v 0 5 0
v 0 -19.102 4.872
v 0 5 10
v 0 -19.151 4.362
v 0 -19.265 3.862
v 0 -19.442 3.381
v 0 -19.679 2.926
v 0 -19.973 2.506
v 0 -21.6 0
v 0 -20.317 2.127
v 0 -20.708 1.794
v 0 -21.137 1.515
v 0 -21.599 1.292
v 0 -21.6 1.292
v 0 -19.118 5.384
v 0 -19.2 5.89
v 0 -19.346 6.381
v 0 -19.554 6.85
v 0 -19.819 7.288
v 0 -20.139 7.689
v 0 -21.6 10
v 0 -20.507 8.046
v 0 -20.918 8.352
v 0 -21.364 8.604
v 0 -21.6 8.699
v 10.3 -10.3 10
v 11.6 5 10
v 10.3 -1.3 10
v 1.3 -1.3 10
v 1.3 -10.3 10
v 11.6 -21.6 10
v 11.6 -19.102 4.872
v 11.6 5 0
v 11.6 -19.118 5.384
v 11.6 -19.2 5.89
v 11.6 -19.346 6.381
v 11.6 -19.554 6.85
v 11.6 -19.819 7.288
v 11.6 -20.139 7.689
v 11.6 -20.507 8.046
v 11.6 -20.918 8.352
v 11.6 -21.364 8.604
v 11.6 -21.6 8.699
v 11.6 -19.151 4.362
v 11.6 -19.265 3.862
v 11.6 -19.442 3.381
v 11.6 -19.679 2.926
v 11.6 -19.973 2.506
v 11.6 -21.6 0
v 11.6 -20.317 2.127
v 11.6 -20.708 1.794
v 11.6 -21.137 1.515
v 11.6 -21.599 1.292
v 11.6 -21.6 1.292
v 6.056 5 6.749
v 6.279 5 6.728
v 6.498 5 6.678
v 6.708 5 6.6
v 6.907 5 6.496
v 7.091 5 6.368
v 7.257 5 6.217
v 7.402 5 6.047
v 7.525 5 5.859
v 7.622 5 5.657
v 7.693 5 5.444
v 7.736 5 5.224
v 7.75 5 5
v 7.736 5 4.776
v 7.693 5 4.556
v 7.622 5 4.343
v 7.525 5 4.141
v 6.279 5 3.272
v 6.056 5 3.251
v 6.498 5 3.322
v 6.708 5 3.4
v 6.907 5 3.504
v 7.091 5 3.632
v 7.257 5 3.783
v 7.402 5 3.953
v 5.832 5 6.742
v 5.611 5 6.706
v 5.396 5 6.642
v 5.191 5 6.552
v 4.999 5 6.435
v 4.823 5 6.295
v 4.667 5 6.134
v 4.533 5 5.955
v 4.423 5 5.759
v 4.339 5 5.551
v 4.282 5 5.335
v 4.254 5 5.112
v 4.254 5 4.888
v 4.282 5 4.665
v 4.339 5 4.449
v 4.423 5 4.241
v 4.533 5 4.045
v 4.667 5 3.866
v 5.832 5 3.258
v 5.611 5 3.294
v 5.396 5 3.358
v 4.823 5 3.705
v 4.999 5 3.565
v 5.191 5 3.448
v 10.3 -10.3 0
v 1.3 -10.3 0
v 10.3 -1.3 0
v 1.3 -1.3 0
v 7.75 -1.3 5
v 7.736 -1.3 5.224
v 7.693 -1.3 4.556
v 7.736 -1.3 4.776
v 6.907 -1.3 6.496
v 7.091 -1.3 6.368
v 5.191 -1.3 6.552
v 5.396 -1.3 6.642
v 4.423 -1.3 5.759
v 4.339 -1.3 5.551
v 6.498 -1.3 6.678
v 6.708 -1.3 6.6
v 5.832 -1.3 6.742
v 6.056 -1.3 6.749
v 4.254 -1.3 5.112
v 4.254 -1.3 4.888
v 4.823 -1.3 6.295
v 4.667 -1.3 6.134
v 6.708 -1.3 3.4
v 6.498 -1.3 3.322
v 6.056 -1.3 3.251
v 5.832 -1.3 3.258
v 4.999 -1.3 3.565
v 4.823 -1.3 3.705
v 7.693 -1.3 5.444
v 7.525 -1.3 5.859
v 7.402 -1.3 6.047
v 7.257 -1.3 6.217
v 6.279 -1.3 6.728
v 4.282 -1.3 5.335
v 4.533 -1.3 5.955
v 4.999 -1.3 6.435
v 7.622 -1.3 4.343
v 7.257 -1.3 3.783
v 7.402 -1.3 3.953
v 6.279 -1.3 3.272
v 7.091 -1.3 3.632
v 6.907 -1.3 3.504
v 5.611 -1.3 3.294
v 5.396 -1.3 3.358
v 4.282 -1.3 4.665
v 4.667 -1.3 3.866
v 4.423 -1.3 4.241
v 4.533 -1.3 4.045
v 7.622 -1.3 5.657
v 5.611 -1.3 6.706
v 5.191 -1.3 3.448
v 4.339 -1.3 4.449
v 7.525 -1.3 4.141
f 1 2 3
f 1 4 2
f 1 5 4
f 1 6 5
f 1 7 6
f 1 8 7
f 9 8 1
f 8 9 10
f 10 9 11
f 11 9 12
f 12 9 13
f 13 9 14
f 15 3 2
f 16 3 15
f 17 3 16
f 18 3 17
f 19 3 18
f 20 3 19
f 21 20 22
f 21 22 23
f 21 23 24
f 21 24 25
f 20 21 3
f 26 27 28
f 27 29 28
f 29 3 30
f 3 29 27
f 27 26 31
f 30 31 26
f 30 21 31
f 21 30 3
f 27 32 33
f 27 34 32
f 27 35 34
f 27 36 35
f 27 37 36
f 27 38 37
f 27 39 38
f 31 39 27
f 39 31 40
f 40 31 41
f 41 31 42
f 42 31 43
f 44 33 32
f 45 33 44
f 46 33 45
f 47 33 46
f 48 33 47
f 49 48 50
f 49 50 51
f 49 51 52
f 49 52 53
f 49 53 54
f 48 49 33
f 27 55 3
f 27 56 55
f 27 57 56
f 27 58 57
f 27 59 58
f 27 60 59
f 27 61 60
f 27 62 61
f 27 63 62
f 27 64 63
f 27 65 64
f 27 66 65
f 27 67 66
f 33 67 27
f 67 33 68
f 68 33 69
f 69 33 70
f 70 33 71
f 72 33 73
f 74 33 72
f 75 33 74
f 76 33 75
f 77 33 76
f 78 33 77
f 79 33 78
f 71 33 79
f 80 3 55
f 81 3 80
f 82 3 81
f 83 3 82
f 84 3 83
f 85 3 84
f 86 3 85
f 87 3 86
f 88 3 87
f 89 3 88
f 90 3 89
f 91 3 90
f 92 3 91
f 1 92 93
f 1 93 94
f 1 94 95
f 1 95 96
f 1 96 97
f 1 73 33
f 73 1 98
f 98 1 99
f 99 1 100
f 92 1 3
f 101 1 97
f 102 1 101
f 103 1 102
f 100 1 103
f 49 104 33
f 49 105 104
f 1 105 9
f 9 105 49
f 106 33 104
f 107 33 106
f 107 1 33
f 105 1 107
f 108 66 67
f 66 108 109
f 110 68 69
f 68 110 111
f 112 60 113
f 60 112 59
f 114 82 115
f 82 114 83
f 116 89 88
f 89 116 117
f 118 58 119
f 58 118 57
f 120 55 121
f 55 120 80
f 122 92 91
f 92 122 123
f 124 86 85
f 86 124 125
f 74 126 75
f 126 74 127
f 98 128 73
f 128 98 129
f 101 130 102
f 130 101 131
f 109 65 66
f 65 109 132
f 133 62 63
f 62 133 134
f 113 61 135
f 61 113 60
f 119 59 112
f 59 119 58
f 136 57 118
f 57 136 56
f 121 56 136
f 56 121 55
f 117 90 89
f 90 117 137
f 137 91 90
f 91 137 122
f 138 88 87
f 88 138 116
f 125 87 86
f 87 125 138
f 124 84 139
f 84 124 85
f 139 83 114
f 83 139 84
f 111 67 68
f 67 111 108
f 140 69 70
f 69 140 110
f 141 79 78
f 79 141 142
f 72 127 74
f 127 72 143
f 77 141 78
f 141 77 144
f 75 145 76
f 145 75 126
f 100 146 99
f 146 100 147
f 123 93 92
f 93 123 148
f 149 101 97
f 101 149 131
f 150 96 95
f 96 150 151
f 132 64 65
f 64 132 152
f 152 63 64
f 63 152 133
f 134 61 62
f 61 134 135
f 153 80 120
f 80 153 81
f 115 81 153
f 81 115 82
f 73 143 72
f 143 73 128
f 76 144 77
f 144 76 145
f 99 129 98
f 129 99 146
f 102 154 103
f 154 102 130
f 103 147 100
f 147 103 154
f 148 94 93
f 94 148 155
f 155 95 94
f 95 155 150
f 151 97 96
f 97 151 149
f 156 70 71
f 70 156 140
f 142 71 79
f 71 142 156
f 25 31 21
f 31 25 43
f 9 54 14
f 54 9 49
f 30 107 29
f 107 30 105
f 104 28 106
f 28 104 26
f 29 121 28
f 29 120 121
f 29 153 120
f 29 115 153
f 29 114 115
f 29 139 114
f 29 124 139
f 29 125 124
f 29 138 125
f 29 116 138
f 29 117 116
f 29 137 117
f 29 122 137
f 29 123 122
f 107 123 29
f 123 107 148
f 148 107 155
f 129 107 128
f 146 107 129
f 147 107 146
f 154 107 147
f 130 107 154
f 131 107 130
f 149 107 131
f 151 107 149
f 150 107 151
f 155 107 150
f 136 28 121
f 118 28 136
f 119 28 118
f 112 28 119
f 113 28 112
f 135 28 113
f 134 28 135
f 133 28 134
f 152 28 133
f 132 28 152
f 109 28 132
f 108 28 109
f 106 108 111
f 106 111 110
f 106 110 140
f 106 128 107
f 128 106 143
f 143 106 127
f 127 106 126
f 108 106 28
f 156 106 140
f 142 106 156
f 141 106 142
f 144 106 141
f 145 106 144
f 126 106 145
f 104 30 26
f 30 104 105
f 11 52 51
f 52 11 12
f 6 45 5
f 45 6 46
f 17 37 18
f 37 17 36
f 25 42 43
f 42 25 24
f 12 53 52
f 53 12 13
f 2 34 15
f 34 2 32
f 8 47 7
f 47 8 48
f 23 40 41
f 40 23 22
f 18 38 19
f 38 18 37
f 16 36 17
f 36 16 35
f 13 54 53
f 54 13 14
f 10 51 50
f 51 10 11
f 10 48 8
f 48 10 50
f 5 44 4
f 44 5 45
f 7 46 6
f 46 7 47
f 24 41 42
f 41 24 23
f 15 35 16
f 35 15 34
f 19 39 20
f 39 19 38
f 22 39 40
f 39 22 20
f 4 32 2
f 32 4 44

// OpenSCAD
h=10;
w=1.3;

difference()
{
	union()
	{
		difference()
		{
			translate([0,0,0])
			cube([w+w+9,5,h]);
			translate([6,12,h*1/2])
			rotate([90,0,0])
			cylinder(d=3.5,h=15,$fn=49);
		}
	
		difference()
		{
			translate([0,-w-w-9-10,0])
			cube([w+w+9,w+w+9+10,h]);
			translate([w,-w-9,0])
			cube([9,9,h]);
            translate([0,-w-w-9-10-1.5,h/2])
            rotate([0,90,0])
            cylinder(d=8,h=w+w+9,$fn=49);
		}
}

	translate([6,6,h/2])
	rotate([90,0,0])
	cylinder(d=3.5,h=8,$fn=49);
}
